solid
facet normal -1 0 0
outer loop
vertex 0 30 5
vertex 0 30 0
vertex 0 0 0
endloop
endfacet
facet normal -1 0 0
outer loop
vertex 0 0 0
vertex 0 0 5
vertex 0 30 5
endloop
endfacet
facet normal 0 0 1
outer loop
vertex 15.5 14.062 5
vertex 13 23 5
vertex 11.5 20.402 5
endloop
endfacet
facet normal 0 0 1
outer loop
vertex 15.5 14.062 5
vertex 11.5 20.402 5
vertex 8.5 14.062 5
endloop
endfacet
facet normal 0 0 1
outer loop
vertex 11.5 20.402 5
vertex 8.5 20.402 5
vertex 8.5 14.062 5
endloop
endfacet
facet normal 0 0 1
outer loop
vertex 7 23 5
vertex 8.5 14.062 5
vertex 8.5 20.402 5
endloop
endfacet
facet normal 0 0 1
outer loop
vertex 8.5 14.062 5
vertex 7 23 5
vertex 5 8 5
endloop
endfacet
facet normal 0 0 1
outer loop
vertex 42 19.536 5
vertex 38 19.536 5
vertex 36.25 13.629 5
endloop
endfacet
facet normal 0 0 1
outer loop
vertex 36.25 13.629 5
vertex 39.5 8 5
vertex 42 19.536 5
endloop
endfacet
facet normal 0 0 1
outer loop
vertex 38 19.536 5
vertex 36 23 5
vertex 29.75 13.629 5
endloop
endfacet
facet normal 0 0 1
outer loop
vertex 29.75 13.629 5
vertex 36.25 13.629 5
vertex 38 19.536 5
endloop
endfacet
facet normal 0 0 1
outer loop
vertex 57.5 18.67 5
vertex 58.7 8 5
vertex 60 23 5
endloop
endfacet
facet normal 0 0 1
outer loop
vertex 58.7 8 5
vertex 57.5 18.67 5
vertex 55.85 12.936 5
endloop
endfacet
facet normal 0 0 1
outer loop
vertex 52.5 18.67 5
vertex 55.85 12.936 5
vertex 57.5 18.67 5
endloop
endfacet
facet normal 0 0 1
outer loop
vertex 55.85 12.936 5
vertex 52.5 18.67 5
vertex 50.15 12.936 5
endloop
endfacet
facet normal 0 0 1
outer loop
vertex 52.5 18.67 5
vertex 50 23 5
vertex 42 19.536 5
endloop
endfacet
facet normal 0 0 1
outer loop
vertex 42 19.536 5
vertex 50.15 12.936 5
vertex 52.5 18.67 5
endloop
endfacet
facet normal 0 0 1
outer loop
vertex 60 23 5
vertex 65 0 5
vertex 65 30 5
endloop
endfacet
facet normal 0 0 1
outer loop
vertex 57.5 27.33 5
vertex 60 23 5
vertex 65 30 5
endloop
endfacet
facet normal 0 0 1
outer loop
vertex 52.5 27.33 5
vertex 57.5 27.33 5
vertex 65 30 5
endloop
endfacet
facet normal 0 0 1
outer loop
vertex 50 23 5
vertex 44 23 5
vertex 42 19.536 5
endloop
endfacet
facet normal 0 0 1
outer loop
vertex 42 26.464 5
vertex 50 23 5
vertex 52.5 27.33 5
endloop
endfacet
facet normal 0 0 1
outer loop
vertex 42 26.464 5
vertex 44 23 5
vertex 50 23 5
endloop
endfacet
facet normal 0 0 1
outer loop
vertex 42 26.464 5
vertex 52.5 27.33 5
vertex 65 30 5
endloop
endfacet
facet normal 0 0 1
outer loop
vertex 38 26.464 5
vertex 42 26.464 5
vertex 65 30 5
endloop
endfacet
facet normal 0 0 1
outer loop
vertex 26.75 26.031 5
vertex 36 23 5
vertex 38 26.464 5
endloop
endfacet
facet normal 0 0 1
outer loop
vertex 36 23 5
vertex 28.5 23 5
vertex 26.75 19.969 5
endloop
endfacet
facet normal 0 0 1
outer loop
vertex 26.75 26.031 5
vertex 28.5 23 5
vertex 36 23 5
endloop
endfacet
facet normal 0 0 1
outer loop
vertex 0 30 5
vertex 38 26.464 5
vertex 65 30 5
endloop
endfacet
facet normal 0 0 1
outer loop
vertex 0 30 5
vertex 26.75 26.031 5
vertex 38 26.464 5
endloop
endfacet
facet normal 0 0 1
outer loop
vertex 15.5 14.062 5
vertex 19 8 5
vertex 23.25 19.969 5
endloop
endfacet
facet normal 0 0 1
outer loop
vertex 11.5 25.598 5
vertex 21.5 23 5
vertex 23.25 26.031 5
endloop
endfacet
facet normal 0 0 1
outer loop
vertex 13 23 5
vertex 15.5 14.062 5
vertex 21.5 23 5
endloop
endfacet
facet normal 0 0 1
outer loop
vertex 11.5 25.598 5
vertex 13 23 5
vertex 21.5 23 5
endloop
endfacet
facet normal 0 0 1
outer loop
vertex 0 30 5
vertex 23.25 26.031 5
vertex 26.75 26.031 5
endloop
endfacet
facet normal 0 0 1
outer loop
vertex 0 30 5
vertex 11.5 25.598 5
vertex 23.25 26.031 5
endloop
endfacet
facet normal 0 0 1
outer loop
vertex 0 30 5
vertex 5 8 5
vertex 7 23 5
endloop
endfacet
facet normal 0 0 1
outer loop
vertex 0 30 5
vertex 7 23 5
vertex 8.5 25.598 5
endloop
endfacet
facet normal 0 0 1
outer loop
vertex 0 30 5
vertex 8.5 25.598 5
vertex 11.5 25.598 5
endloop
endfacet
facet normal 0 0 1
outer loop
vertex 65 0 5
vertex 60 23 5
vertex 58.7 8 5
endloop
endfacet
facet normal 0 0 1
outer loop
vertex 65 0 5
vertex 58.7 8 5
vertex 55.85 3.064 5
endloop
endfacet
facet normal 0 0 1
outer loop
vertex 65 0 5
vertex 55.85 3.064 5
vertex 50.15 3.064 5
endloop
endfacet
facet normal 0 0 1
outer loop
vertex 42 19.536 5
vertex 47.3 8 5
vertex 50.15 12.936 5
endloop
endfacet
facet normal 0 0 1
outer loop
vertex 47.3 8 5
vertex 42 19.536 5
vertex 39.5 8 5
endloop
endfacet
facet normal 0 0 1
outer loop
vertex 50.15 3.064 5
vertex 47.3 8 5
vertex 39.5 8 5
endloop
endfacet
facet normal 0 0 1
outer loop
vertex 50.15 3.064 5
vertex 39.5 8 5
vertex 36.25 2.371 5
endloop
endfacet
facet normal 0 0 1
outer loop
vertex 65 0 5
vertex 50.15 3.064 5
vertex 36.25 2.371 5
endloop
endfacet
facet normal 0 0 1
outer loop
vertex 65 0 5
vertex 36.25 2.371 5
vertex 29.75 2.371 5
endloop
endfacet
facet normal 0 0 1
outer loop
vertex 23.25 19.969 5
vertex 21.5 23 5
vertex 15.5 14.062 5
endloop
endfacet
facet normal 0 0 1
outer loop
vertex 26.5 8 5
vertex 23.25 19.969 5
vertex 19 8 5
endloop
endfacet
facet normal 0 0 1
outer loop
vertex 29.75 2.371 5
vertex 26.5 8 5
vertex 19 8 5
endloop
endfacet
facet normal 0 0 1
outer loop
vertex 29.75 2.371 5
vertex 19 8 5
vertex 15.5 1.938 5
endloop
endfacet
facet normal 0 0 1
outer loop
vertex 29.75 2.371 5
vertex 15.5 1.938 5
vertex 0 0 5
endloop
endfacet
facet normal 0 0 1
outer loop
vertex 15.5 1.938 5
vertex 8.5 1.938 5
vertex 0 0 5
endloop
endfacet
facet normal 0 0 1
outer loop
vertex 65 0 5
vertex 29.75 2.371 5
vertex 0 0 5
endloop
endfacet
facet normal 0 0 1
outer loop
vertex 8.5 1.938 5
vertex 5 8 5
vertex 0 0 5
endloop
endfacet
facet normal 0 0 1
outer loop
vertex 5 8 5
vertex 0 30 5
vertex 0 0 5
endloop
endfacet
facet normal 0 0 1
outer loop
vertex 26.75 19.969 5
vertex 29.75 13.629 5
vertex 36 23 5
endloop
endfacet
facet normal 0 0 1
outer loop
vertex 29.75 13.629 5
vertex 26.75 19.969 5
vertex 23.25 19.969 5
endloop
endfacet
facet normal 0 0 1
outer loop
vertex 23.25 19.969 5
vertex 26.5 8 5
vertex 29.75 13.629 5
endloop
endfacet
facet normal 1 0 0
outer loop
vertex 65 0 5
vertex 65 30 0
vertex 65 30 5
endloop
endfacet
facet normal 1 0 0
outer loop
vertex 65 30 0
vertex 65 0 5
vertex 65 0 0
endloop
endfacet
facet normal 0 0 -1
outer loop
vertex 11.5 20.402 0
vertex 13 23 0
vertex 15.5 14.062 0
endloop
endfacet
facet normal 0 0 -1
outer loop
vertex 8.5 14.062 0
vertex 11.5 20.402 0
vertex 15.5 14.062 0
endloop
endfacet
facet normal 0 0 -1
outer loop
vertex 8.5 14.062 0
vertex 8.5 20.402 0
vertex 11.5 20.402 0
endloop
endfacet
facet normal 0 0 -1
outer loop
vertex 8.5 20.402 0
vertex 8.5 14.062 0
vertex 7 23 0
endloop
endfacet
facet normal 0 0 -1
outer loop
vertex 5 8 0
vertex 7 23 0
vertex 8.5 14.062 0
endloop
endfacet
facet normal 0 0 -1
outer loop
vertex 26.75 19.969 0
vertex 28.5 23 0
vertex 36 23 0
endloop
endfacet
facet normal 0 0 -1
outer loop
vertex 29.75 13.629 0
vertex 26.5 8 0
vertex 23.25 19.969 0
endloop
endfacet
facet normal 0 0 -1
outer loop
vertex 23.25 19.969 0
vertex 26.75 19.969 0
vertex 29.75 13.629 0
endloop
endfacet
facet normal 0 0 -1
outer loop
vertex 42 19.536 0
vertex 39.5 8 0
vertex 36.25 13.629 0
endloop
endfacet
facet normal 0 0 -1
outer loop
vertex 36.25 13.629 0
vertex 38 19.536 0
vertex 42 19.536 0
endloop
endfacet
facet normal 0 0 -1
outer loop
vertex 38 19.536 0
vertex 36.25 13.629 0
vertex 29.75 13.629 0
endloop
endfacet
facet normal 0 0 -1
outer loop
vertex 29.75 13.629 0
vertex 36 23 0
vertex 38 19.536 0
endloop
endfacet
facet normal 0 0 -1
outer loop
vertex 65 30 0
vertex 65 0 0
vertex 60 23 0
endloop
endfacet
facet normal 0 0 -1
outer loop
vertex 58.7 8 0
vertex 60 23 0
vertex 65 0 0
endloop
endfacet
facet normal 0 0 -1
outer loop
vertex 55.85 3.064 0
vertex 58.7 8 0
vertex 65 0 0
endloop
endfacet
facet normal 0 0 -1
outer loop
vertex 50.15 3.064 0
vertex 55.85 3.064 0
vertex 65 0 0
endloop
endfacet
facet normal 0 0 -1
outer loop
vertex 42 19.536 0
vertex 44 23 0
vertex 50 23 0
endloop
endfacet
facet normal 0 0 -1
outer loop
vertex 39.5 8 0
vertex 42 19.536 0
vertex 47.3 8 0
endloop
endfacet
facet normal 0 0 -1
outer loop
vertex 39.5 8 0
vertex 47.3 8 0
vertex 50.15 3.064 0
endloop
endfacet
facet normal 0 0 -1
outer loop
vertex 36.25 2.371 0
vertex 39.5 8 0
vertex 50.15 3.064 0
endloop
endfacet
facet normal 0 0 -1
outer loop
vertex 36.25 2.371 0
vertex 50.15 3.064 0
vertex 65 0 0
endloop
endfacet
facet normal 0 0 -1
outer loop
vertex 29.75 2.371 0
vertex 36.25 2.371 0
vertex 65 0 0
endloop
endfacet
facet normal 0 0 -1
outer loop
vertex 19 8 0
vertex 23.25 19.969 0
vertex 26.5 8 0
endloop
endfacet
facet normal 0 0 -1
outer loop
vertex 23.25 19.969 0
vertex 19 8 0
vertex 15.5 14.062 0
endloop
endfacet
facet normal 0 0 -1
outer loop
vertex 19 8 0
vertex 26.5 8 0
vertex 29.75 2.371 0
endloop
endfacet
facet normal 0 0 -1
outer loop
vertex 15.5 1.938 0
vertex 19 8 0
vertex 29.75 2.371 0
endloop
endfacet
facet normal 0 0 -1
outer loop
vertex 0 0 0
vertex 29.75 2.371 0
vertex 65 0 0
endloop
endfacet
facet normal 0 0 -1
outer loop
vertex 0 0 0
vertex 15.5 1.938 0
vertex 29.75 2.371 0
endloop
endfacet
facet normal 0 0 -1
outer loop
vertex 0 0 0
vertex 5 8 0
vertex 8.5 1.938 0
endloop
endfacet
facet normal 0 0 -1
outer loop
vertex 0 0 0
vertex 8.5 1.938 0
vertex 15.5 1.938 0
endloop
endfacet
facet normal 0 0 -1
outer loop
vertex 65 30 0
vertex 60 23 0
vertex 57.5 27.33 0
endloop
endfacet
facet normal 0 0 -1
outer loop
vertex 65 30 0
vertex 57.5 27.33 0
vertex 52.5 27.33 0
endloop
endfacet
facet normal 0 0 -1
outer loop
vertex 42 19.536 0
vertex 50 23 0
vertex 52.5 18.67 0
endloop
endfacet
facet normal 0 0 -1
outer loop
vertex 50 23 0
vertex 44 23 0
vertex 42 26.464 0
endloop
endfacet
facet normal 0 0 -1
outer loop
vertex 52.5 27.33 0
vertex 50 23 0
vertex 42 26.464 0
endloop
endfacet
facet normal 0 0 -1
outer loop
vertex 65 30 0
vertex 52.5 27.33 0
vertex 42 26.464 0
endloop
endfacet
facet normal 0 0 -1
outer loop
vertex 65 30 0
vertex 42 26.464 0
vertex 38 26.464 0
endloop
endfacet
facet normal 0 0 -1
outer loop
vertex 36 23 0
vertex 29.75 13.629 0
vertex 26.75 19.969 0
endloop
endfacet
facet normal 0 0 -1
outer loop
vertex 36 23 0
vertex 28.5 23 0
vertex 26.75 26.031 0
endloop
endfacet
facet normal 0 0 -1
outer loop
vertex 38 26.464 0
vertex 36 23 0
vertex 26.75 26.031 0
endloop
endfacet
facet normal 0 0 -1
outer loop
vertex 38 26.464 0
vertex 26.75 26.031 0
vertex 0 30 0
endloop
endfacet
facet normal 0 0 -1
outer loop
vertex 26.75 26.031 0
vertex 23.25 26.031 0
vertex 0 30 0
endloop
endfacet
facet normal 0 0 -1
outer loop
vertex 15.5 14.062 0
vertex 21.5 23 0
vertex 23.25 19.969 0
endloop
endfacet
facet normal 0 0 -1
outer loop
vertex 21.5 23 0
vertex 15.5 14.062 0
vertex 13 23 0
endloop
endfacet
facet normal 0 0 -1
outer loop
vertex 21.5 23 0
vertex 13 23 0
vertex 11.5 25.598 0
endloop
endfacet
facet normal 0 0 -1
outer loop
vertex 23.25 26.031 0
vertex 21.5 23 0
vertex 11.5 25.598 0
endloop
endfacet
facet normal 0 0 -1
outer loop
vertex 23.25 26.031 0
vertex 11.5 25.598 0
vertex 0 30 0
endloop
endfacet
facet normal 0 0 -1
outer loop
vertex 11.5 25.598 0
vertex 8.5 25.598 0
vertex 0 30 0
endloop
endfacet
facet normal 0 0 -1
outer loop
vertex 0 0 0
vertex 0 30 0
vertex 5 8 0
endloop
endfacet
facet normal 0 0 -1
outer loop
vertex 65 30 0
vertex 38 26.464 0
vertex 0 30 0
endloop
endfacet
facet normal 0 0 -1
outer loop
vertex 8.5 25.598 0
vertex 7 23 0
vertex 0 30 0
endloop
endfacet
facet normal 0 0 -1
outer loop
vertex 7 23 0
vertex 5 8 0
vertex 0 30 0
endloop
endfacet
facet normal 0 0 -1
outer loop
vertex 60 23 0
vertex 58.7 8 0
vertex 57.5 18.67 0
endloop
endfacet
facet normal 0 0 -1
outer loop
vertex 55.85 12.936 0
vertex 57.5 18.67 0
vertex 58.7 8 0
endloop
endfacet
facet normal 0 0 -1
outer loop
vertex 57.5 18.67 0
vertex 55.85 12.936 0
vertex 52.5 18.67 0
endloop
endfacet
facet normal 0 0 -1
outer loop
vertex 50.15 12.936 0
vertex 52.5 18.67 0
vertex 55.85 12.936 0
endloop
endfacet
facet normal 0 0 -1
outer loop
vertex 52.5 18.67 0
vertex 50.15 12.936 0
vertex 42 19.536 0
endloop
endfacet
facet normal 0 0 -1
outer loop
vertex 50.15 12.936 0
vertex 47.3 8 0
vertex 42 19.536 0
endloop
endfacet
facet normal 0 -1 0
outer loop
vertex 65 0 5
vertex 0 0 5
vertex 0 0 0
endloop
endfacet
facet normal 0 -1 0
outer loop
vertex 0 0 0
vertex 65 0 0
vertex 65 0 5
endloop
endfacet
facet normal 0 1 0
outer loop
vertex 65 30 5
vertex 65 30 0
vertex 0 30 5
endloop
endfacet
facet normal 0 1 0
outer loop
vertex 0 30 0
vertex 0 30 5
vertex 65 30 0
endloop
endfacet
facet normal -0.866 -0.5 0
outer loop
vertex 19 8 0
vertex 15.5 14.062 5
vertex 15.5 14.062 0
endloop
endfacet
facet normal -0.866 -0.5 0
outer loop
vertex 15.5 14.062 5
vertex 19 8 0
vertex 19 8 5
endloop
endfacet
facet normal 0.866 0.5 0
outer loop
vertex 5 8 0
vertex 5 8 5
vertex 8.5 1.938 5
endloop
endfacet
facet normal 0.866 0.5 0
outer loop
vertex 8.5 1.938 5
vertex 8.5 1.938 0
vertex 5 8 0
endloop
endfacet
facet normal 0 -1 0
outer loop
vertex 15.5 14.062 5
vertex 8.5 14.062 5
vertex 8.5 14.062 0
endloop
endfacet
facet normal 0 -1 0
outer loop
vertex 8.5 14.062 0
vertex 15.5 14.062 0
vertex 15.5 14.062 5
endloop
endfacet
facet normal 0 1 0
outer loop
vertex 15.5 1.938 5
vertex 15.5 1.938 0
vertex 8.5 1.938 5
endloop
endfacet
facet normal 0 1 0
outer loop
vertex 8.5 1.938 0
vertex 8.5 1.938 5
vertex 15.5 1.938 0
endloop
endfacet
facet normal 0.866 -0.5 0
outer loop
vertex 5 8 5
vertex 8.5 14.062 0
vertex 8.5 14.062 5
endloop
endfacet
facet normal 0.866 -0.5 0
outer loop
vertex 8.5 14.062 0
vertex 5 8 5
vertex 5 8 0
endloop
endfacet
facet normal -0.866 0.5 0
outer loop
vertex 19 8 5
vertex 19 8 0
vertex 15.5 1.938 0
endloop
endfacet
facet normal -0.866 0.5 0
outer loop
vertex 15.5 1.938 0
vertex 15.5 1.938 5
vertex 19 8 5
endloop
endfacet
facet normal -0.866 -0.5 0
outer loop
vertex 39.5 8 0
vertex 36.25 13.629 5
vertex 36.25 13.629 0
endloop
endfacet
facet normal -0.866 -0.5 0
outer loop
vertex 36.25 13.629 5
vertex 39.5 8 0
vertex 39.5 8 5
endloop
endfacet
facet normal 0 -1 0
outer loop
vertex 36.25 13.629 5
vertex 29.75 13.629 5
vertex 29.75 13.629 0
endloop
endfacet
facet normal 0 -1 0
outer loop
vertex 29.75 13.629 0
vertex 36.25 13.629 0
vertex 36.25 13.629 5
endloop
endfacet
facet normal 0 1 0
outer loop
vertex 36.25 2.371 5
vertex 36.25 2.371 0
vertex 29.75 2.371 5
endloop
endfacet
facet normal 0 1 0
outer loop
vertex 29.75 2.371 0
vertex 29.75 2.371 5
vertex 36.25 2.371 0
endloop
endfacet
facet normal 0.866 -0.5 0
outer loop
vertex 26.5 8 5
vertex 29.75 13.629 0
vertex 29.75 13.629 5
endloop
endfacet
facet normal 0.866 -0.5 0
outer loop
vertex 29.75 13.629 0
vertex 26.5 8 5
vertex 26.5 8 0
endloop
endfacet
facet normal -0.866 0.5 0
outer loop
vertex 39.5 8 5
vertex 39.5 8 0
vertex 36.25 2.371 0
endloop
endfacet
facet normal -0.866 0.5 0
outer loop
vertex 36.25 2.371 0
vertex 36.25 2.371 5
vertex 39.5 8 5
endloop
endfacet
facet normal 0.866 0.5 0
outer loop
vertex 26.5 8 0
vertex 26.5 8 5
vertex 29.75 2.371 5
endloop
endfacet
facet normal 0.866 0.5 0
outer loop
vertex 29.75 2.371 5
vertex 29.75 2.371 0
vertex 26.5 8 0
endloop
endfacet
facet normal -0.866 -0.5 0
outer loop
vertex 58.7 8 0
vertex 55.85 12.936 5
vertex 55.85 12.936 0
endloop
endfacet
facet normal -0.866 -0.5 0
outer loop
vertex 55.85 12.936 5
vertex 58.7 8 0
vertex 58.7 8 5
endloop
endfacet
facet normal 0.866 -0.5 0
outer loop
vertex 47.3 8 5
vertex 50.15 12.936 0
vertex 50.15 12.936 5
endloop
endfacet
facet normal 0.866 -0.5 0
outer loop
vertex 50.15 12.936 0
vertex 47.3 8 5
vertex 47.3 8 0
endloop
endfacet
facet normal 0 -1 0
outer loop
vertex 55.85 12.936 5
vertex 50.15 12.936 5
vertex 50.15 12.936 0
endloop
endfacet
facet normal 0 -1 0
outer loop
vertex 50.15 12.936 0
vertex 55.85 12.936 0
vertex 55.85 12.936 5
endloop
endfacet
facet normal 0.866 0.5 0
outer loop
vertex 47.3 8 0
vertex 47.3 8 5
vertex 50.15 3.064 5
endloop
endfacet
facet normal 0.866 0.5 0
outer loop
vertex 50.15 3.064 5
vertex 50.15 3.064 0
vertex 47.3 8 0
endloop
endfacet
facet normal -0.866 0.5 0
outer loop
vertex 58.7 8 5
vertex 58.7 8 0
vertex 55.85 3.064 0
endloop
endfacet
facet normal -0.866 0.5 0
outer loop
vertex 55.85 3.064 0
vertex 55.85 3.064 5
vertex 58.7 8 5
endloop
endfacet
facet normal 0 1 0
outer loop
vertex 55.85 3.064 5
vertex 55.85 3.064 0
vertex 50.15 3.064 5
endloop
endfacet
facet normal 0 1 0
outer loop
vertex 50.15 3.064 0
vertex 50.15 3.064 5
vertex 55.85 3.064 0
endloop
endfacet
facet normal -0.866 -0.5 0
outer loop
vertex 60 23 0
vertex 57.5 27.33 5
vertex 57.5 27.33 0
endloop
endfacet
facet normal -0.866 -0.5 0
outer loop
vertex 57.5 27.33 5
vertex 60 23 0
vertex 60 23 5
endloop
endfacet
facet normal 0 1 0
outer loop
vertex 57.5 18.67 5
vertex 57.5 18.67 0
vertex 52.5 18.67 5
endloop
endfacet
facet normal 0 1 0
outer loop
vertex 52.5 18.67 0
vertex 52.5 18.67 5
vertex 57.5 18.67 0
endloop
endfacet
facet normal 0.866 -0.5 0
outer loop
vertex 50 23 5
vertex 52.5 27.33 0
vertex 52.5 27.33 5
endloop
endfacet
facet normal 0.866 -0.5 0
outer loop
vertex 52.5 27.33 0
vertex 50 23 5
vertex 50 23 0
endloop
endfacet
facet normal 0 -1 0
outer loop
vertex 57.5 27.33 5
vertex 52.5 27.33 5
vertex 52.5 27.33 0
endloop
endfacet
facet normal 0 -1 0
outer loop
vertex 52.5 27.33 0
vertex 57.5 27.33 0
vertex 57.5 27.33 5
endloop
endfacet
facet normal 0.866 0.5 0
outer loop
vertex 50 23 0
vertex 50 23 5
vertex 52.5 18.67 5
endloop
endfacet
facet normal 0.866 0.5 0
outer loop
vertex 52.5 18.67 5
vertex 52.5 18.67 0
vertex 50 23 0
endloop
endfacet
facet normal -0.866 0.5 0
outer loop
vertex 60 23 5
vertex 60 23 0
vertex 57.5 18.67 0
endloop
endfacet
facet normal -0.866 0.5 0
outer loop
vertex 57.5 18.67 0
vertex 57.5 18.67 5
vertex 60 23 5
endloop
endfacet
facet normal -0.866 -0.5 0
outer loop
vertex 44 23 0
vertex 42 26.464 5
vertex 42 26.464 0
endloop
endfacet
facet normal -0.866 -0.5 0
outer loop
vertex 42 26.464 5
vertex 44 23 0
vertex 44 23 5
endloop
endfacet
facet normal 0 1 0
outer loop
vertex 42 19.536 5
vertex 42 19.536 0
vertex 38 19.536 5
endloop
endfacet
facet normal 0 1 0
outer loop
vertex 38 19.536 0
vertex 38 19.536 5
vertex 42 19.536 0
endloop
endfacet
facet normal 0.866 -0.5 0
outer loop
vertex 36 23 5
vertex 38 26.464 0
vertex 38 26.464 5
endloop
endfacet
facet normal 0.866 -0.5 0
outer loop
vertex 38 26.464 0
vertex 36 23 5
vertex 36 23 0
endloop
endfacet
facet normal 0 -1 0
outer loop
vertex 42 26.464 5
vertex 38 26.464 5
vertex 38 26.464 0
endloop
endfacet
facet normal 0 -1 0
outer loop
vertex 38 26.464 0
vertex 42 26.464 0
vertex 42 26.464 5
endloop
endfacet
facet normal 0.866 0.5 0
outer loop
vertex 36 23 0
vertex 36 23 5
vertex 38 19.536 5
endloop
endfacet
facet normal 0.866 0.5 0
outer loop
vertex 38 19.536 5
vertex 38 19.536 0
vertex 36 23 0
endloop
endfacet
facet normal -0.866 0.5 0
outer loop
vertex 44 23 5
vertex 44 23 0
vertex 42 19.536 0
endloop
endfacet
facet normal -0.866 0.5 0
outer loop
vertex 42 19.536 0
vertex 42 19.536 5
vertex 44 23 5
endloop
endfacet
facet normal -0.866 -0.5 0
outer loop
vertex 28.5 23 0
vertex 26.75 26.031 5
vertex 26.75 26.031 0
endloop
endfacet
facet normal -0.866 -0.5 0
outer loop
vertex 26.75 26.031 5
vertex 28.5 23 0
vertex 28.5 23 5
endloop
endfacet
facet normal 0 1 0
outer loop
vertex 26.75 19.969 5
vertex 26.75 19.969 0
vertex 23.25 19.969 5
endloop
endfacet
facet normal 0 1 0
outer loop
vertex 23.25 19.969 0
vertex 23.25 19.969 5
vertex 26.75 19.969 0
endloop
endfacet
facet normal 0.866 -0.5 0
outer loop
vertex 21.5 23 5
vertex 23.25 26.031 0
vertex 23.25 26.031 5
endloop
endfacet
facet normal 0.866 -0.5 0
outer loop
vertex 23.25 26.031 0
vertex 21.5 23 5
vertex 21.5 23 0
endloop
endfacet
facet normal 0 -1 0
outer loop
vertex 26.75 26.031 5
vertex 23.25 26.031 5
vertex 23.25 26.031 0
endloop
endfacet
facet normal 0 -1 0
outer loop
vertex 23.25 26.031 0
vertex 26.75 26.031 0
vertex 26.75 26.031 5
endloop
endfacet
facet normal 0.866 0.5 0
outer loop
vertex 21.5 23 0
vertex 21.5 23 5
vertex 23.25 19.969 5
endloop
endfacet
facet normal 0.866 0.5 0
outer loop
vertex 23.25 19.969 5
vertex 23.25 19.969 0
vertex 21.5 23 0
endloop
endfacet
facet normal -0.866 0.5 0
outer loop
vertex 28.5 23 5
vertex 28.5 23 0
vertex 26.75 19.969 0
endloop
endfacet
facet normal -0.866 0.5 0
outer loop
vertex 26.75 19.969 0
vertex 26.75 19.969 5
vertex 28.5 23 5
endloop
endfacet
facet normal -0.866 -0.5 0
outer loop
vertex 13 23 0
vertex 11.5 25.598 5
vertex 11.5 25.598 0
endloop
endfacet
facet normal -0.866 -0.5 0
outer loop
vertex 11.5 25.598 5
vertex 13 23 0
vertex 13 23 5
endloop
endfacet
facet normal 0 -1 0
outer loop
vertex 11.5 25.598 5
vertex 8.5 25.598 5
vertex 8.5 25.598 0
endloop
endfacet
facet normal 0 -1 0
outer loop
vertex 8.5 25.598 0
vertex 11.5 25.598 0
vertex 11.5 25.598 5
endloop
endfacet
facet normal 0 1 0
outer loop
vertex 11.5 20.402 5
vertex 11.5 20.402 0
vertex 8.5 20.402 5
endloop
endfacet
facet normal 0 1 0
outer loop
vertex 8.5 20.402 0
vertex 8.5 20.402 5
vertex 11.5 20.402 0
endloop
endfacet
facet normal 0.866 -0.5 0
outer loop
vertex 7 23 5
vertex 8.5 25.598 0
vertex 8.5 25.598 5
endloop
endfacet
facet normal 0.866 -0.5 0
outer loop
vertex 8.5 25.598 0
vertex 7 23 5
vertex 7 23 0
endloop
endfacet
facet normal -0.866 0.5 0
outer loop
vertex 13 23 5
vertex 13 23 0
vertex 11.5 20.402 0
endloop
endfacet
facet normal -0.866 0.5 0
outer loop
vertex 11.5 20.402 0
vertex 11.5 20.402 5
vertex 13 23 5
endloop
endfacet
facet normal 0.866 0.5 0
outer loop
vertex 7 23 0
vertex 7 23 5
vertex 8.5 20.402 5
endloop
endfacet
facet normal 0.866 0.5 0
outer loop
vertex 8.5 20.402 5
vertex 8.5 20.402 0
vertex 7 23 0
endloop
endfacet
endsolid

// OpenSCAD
difference() {
  translate([32.5000000000, 15.0000000000, 2.5000000000]) {
    scale([65.0000000000, 30.0000000000, 5.0000000000]) {
      translate([-0.5000000000, -0.5000000000, -0.5000000000]) {
        cube([1, 1, 1]);
      }
    }
  }
  union() {
    union() {
      union() {
        union() {
          union() {
            union() {
              difference() {
                translate([12.0000000000, 8.0000000000, 2.5000000000]) {
                  scale([14.0000000000, 12.1240000000, 5.0000000000]) {
                    rotate([0.0000000000, 0.0000000000, -0.0000000000]) {
                      scale([0.5, 0.577, 1]) cylinder($fn = 6, center = true);
                    }
                  }
                }
                /* EMPTY */ sphere(r = 0);
              }
              difference() {
                translate([10.0000000000, 23.0000000000, 2.5000000000]) {
                  scale([6.0000000000, 5.1960000000, 5.0000000000]) {
                    rotate([0.0000000000, 0.0000000000, -0.0000000000]) {
                      scale([0.5, 0.577, 1]) cylinder($fn = 6, center = true);
                    }
                  }
                }
                /* EMPTY */ sphere(r = 0);
              }
            }
            difference() {
              translate([40.0000000000, 23.0000000000, 2.5000000000]) {
                scale([8.0000000000, 6.9280000000, 5.0000000000]) {
                  rotate([0.0000000000, 0.0000000000, -0.0000000000]) {
                    scale([0.5, 0.577, 1]) cylinder($fn = 6, center = true);
                  }
                }
              }
              /* EMPTY */ sphere(r = 0);
            }
          }
          difference() {
            translate([25.0000000000, 23.0000000000, 2.5000000000]) {
              scale([7.0000000000, 6.0620000000, 5.0000000000]) {
                rotate([0.0000000000, 0.0000000000, -0.0000000000]) {
                  scale([0.5, 0.577, 1]) cylinder($fn = 6, center = true);
                }
              }
            }
            /* EMPTY */ sphere(r = 0);
          }
        }
        difference() {
          translate([33.0000000000, 8.0000000000, 2.5000000000]) {
            scale([13.0000000000, 11.2580000000, 5.0000000000]) {
              rotate([0.0000000000, 0.0000000000, -0.0000000000]) {
                scale([0.5, 0.577, 1]) cylinder($fn = 6, center = true);
              }
            }
          }
          /* EMPTY */ sphere(r = 0);
        }
      }
      difference() {
        translate([55.0000000000, 23.0000000000, 2.5000000000]) {
          scale([10.0000000000, 8.6600000000, 5.0000000000]) {
            rotate([0.0000000000, 0.0000000000, -0.0000000000]) {
              scale([0.5, 0.577, 1]) cylinder($fn = 6, center = true);
            }
          }
        }
        /* EMPTY */ sphere(r = 0);
      }
    }
    difference() {
      translate([52.9999680000, 7.9999874480, 2.5000000000]) {
        scale([11.4000000000, 9.8720000000, 5.0000000000]) {
          rotate([0.0000000000, 0.0000000000, -0.0000000000]) {
            scale([0.5, 0.577, 1]) cylinder($fn = 6, center = true);
          }
        }
      }
      /* EMPTY */ sphere(r = 0);
    }
  }
}
